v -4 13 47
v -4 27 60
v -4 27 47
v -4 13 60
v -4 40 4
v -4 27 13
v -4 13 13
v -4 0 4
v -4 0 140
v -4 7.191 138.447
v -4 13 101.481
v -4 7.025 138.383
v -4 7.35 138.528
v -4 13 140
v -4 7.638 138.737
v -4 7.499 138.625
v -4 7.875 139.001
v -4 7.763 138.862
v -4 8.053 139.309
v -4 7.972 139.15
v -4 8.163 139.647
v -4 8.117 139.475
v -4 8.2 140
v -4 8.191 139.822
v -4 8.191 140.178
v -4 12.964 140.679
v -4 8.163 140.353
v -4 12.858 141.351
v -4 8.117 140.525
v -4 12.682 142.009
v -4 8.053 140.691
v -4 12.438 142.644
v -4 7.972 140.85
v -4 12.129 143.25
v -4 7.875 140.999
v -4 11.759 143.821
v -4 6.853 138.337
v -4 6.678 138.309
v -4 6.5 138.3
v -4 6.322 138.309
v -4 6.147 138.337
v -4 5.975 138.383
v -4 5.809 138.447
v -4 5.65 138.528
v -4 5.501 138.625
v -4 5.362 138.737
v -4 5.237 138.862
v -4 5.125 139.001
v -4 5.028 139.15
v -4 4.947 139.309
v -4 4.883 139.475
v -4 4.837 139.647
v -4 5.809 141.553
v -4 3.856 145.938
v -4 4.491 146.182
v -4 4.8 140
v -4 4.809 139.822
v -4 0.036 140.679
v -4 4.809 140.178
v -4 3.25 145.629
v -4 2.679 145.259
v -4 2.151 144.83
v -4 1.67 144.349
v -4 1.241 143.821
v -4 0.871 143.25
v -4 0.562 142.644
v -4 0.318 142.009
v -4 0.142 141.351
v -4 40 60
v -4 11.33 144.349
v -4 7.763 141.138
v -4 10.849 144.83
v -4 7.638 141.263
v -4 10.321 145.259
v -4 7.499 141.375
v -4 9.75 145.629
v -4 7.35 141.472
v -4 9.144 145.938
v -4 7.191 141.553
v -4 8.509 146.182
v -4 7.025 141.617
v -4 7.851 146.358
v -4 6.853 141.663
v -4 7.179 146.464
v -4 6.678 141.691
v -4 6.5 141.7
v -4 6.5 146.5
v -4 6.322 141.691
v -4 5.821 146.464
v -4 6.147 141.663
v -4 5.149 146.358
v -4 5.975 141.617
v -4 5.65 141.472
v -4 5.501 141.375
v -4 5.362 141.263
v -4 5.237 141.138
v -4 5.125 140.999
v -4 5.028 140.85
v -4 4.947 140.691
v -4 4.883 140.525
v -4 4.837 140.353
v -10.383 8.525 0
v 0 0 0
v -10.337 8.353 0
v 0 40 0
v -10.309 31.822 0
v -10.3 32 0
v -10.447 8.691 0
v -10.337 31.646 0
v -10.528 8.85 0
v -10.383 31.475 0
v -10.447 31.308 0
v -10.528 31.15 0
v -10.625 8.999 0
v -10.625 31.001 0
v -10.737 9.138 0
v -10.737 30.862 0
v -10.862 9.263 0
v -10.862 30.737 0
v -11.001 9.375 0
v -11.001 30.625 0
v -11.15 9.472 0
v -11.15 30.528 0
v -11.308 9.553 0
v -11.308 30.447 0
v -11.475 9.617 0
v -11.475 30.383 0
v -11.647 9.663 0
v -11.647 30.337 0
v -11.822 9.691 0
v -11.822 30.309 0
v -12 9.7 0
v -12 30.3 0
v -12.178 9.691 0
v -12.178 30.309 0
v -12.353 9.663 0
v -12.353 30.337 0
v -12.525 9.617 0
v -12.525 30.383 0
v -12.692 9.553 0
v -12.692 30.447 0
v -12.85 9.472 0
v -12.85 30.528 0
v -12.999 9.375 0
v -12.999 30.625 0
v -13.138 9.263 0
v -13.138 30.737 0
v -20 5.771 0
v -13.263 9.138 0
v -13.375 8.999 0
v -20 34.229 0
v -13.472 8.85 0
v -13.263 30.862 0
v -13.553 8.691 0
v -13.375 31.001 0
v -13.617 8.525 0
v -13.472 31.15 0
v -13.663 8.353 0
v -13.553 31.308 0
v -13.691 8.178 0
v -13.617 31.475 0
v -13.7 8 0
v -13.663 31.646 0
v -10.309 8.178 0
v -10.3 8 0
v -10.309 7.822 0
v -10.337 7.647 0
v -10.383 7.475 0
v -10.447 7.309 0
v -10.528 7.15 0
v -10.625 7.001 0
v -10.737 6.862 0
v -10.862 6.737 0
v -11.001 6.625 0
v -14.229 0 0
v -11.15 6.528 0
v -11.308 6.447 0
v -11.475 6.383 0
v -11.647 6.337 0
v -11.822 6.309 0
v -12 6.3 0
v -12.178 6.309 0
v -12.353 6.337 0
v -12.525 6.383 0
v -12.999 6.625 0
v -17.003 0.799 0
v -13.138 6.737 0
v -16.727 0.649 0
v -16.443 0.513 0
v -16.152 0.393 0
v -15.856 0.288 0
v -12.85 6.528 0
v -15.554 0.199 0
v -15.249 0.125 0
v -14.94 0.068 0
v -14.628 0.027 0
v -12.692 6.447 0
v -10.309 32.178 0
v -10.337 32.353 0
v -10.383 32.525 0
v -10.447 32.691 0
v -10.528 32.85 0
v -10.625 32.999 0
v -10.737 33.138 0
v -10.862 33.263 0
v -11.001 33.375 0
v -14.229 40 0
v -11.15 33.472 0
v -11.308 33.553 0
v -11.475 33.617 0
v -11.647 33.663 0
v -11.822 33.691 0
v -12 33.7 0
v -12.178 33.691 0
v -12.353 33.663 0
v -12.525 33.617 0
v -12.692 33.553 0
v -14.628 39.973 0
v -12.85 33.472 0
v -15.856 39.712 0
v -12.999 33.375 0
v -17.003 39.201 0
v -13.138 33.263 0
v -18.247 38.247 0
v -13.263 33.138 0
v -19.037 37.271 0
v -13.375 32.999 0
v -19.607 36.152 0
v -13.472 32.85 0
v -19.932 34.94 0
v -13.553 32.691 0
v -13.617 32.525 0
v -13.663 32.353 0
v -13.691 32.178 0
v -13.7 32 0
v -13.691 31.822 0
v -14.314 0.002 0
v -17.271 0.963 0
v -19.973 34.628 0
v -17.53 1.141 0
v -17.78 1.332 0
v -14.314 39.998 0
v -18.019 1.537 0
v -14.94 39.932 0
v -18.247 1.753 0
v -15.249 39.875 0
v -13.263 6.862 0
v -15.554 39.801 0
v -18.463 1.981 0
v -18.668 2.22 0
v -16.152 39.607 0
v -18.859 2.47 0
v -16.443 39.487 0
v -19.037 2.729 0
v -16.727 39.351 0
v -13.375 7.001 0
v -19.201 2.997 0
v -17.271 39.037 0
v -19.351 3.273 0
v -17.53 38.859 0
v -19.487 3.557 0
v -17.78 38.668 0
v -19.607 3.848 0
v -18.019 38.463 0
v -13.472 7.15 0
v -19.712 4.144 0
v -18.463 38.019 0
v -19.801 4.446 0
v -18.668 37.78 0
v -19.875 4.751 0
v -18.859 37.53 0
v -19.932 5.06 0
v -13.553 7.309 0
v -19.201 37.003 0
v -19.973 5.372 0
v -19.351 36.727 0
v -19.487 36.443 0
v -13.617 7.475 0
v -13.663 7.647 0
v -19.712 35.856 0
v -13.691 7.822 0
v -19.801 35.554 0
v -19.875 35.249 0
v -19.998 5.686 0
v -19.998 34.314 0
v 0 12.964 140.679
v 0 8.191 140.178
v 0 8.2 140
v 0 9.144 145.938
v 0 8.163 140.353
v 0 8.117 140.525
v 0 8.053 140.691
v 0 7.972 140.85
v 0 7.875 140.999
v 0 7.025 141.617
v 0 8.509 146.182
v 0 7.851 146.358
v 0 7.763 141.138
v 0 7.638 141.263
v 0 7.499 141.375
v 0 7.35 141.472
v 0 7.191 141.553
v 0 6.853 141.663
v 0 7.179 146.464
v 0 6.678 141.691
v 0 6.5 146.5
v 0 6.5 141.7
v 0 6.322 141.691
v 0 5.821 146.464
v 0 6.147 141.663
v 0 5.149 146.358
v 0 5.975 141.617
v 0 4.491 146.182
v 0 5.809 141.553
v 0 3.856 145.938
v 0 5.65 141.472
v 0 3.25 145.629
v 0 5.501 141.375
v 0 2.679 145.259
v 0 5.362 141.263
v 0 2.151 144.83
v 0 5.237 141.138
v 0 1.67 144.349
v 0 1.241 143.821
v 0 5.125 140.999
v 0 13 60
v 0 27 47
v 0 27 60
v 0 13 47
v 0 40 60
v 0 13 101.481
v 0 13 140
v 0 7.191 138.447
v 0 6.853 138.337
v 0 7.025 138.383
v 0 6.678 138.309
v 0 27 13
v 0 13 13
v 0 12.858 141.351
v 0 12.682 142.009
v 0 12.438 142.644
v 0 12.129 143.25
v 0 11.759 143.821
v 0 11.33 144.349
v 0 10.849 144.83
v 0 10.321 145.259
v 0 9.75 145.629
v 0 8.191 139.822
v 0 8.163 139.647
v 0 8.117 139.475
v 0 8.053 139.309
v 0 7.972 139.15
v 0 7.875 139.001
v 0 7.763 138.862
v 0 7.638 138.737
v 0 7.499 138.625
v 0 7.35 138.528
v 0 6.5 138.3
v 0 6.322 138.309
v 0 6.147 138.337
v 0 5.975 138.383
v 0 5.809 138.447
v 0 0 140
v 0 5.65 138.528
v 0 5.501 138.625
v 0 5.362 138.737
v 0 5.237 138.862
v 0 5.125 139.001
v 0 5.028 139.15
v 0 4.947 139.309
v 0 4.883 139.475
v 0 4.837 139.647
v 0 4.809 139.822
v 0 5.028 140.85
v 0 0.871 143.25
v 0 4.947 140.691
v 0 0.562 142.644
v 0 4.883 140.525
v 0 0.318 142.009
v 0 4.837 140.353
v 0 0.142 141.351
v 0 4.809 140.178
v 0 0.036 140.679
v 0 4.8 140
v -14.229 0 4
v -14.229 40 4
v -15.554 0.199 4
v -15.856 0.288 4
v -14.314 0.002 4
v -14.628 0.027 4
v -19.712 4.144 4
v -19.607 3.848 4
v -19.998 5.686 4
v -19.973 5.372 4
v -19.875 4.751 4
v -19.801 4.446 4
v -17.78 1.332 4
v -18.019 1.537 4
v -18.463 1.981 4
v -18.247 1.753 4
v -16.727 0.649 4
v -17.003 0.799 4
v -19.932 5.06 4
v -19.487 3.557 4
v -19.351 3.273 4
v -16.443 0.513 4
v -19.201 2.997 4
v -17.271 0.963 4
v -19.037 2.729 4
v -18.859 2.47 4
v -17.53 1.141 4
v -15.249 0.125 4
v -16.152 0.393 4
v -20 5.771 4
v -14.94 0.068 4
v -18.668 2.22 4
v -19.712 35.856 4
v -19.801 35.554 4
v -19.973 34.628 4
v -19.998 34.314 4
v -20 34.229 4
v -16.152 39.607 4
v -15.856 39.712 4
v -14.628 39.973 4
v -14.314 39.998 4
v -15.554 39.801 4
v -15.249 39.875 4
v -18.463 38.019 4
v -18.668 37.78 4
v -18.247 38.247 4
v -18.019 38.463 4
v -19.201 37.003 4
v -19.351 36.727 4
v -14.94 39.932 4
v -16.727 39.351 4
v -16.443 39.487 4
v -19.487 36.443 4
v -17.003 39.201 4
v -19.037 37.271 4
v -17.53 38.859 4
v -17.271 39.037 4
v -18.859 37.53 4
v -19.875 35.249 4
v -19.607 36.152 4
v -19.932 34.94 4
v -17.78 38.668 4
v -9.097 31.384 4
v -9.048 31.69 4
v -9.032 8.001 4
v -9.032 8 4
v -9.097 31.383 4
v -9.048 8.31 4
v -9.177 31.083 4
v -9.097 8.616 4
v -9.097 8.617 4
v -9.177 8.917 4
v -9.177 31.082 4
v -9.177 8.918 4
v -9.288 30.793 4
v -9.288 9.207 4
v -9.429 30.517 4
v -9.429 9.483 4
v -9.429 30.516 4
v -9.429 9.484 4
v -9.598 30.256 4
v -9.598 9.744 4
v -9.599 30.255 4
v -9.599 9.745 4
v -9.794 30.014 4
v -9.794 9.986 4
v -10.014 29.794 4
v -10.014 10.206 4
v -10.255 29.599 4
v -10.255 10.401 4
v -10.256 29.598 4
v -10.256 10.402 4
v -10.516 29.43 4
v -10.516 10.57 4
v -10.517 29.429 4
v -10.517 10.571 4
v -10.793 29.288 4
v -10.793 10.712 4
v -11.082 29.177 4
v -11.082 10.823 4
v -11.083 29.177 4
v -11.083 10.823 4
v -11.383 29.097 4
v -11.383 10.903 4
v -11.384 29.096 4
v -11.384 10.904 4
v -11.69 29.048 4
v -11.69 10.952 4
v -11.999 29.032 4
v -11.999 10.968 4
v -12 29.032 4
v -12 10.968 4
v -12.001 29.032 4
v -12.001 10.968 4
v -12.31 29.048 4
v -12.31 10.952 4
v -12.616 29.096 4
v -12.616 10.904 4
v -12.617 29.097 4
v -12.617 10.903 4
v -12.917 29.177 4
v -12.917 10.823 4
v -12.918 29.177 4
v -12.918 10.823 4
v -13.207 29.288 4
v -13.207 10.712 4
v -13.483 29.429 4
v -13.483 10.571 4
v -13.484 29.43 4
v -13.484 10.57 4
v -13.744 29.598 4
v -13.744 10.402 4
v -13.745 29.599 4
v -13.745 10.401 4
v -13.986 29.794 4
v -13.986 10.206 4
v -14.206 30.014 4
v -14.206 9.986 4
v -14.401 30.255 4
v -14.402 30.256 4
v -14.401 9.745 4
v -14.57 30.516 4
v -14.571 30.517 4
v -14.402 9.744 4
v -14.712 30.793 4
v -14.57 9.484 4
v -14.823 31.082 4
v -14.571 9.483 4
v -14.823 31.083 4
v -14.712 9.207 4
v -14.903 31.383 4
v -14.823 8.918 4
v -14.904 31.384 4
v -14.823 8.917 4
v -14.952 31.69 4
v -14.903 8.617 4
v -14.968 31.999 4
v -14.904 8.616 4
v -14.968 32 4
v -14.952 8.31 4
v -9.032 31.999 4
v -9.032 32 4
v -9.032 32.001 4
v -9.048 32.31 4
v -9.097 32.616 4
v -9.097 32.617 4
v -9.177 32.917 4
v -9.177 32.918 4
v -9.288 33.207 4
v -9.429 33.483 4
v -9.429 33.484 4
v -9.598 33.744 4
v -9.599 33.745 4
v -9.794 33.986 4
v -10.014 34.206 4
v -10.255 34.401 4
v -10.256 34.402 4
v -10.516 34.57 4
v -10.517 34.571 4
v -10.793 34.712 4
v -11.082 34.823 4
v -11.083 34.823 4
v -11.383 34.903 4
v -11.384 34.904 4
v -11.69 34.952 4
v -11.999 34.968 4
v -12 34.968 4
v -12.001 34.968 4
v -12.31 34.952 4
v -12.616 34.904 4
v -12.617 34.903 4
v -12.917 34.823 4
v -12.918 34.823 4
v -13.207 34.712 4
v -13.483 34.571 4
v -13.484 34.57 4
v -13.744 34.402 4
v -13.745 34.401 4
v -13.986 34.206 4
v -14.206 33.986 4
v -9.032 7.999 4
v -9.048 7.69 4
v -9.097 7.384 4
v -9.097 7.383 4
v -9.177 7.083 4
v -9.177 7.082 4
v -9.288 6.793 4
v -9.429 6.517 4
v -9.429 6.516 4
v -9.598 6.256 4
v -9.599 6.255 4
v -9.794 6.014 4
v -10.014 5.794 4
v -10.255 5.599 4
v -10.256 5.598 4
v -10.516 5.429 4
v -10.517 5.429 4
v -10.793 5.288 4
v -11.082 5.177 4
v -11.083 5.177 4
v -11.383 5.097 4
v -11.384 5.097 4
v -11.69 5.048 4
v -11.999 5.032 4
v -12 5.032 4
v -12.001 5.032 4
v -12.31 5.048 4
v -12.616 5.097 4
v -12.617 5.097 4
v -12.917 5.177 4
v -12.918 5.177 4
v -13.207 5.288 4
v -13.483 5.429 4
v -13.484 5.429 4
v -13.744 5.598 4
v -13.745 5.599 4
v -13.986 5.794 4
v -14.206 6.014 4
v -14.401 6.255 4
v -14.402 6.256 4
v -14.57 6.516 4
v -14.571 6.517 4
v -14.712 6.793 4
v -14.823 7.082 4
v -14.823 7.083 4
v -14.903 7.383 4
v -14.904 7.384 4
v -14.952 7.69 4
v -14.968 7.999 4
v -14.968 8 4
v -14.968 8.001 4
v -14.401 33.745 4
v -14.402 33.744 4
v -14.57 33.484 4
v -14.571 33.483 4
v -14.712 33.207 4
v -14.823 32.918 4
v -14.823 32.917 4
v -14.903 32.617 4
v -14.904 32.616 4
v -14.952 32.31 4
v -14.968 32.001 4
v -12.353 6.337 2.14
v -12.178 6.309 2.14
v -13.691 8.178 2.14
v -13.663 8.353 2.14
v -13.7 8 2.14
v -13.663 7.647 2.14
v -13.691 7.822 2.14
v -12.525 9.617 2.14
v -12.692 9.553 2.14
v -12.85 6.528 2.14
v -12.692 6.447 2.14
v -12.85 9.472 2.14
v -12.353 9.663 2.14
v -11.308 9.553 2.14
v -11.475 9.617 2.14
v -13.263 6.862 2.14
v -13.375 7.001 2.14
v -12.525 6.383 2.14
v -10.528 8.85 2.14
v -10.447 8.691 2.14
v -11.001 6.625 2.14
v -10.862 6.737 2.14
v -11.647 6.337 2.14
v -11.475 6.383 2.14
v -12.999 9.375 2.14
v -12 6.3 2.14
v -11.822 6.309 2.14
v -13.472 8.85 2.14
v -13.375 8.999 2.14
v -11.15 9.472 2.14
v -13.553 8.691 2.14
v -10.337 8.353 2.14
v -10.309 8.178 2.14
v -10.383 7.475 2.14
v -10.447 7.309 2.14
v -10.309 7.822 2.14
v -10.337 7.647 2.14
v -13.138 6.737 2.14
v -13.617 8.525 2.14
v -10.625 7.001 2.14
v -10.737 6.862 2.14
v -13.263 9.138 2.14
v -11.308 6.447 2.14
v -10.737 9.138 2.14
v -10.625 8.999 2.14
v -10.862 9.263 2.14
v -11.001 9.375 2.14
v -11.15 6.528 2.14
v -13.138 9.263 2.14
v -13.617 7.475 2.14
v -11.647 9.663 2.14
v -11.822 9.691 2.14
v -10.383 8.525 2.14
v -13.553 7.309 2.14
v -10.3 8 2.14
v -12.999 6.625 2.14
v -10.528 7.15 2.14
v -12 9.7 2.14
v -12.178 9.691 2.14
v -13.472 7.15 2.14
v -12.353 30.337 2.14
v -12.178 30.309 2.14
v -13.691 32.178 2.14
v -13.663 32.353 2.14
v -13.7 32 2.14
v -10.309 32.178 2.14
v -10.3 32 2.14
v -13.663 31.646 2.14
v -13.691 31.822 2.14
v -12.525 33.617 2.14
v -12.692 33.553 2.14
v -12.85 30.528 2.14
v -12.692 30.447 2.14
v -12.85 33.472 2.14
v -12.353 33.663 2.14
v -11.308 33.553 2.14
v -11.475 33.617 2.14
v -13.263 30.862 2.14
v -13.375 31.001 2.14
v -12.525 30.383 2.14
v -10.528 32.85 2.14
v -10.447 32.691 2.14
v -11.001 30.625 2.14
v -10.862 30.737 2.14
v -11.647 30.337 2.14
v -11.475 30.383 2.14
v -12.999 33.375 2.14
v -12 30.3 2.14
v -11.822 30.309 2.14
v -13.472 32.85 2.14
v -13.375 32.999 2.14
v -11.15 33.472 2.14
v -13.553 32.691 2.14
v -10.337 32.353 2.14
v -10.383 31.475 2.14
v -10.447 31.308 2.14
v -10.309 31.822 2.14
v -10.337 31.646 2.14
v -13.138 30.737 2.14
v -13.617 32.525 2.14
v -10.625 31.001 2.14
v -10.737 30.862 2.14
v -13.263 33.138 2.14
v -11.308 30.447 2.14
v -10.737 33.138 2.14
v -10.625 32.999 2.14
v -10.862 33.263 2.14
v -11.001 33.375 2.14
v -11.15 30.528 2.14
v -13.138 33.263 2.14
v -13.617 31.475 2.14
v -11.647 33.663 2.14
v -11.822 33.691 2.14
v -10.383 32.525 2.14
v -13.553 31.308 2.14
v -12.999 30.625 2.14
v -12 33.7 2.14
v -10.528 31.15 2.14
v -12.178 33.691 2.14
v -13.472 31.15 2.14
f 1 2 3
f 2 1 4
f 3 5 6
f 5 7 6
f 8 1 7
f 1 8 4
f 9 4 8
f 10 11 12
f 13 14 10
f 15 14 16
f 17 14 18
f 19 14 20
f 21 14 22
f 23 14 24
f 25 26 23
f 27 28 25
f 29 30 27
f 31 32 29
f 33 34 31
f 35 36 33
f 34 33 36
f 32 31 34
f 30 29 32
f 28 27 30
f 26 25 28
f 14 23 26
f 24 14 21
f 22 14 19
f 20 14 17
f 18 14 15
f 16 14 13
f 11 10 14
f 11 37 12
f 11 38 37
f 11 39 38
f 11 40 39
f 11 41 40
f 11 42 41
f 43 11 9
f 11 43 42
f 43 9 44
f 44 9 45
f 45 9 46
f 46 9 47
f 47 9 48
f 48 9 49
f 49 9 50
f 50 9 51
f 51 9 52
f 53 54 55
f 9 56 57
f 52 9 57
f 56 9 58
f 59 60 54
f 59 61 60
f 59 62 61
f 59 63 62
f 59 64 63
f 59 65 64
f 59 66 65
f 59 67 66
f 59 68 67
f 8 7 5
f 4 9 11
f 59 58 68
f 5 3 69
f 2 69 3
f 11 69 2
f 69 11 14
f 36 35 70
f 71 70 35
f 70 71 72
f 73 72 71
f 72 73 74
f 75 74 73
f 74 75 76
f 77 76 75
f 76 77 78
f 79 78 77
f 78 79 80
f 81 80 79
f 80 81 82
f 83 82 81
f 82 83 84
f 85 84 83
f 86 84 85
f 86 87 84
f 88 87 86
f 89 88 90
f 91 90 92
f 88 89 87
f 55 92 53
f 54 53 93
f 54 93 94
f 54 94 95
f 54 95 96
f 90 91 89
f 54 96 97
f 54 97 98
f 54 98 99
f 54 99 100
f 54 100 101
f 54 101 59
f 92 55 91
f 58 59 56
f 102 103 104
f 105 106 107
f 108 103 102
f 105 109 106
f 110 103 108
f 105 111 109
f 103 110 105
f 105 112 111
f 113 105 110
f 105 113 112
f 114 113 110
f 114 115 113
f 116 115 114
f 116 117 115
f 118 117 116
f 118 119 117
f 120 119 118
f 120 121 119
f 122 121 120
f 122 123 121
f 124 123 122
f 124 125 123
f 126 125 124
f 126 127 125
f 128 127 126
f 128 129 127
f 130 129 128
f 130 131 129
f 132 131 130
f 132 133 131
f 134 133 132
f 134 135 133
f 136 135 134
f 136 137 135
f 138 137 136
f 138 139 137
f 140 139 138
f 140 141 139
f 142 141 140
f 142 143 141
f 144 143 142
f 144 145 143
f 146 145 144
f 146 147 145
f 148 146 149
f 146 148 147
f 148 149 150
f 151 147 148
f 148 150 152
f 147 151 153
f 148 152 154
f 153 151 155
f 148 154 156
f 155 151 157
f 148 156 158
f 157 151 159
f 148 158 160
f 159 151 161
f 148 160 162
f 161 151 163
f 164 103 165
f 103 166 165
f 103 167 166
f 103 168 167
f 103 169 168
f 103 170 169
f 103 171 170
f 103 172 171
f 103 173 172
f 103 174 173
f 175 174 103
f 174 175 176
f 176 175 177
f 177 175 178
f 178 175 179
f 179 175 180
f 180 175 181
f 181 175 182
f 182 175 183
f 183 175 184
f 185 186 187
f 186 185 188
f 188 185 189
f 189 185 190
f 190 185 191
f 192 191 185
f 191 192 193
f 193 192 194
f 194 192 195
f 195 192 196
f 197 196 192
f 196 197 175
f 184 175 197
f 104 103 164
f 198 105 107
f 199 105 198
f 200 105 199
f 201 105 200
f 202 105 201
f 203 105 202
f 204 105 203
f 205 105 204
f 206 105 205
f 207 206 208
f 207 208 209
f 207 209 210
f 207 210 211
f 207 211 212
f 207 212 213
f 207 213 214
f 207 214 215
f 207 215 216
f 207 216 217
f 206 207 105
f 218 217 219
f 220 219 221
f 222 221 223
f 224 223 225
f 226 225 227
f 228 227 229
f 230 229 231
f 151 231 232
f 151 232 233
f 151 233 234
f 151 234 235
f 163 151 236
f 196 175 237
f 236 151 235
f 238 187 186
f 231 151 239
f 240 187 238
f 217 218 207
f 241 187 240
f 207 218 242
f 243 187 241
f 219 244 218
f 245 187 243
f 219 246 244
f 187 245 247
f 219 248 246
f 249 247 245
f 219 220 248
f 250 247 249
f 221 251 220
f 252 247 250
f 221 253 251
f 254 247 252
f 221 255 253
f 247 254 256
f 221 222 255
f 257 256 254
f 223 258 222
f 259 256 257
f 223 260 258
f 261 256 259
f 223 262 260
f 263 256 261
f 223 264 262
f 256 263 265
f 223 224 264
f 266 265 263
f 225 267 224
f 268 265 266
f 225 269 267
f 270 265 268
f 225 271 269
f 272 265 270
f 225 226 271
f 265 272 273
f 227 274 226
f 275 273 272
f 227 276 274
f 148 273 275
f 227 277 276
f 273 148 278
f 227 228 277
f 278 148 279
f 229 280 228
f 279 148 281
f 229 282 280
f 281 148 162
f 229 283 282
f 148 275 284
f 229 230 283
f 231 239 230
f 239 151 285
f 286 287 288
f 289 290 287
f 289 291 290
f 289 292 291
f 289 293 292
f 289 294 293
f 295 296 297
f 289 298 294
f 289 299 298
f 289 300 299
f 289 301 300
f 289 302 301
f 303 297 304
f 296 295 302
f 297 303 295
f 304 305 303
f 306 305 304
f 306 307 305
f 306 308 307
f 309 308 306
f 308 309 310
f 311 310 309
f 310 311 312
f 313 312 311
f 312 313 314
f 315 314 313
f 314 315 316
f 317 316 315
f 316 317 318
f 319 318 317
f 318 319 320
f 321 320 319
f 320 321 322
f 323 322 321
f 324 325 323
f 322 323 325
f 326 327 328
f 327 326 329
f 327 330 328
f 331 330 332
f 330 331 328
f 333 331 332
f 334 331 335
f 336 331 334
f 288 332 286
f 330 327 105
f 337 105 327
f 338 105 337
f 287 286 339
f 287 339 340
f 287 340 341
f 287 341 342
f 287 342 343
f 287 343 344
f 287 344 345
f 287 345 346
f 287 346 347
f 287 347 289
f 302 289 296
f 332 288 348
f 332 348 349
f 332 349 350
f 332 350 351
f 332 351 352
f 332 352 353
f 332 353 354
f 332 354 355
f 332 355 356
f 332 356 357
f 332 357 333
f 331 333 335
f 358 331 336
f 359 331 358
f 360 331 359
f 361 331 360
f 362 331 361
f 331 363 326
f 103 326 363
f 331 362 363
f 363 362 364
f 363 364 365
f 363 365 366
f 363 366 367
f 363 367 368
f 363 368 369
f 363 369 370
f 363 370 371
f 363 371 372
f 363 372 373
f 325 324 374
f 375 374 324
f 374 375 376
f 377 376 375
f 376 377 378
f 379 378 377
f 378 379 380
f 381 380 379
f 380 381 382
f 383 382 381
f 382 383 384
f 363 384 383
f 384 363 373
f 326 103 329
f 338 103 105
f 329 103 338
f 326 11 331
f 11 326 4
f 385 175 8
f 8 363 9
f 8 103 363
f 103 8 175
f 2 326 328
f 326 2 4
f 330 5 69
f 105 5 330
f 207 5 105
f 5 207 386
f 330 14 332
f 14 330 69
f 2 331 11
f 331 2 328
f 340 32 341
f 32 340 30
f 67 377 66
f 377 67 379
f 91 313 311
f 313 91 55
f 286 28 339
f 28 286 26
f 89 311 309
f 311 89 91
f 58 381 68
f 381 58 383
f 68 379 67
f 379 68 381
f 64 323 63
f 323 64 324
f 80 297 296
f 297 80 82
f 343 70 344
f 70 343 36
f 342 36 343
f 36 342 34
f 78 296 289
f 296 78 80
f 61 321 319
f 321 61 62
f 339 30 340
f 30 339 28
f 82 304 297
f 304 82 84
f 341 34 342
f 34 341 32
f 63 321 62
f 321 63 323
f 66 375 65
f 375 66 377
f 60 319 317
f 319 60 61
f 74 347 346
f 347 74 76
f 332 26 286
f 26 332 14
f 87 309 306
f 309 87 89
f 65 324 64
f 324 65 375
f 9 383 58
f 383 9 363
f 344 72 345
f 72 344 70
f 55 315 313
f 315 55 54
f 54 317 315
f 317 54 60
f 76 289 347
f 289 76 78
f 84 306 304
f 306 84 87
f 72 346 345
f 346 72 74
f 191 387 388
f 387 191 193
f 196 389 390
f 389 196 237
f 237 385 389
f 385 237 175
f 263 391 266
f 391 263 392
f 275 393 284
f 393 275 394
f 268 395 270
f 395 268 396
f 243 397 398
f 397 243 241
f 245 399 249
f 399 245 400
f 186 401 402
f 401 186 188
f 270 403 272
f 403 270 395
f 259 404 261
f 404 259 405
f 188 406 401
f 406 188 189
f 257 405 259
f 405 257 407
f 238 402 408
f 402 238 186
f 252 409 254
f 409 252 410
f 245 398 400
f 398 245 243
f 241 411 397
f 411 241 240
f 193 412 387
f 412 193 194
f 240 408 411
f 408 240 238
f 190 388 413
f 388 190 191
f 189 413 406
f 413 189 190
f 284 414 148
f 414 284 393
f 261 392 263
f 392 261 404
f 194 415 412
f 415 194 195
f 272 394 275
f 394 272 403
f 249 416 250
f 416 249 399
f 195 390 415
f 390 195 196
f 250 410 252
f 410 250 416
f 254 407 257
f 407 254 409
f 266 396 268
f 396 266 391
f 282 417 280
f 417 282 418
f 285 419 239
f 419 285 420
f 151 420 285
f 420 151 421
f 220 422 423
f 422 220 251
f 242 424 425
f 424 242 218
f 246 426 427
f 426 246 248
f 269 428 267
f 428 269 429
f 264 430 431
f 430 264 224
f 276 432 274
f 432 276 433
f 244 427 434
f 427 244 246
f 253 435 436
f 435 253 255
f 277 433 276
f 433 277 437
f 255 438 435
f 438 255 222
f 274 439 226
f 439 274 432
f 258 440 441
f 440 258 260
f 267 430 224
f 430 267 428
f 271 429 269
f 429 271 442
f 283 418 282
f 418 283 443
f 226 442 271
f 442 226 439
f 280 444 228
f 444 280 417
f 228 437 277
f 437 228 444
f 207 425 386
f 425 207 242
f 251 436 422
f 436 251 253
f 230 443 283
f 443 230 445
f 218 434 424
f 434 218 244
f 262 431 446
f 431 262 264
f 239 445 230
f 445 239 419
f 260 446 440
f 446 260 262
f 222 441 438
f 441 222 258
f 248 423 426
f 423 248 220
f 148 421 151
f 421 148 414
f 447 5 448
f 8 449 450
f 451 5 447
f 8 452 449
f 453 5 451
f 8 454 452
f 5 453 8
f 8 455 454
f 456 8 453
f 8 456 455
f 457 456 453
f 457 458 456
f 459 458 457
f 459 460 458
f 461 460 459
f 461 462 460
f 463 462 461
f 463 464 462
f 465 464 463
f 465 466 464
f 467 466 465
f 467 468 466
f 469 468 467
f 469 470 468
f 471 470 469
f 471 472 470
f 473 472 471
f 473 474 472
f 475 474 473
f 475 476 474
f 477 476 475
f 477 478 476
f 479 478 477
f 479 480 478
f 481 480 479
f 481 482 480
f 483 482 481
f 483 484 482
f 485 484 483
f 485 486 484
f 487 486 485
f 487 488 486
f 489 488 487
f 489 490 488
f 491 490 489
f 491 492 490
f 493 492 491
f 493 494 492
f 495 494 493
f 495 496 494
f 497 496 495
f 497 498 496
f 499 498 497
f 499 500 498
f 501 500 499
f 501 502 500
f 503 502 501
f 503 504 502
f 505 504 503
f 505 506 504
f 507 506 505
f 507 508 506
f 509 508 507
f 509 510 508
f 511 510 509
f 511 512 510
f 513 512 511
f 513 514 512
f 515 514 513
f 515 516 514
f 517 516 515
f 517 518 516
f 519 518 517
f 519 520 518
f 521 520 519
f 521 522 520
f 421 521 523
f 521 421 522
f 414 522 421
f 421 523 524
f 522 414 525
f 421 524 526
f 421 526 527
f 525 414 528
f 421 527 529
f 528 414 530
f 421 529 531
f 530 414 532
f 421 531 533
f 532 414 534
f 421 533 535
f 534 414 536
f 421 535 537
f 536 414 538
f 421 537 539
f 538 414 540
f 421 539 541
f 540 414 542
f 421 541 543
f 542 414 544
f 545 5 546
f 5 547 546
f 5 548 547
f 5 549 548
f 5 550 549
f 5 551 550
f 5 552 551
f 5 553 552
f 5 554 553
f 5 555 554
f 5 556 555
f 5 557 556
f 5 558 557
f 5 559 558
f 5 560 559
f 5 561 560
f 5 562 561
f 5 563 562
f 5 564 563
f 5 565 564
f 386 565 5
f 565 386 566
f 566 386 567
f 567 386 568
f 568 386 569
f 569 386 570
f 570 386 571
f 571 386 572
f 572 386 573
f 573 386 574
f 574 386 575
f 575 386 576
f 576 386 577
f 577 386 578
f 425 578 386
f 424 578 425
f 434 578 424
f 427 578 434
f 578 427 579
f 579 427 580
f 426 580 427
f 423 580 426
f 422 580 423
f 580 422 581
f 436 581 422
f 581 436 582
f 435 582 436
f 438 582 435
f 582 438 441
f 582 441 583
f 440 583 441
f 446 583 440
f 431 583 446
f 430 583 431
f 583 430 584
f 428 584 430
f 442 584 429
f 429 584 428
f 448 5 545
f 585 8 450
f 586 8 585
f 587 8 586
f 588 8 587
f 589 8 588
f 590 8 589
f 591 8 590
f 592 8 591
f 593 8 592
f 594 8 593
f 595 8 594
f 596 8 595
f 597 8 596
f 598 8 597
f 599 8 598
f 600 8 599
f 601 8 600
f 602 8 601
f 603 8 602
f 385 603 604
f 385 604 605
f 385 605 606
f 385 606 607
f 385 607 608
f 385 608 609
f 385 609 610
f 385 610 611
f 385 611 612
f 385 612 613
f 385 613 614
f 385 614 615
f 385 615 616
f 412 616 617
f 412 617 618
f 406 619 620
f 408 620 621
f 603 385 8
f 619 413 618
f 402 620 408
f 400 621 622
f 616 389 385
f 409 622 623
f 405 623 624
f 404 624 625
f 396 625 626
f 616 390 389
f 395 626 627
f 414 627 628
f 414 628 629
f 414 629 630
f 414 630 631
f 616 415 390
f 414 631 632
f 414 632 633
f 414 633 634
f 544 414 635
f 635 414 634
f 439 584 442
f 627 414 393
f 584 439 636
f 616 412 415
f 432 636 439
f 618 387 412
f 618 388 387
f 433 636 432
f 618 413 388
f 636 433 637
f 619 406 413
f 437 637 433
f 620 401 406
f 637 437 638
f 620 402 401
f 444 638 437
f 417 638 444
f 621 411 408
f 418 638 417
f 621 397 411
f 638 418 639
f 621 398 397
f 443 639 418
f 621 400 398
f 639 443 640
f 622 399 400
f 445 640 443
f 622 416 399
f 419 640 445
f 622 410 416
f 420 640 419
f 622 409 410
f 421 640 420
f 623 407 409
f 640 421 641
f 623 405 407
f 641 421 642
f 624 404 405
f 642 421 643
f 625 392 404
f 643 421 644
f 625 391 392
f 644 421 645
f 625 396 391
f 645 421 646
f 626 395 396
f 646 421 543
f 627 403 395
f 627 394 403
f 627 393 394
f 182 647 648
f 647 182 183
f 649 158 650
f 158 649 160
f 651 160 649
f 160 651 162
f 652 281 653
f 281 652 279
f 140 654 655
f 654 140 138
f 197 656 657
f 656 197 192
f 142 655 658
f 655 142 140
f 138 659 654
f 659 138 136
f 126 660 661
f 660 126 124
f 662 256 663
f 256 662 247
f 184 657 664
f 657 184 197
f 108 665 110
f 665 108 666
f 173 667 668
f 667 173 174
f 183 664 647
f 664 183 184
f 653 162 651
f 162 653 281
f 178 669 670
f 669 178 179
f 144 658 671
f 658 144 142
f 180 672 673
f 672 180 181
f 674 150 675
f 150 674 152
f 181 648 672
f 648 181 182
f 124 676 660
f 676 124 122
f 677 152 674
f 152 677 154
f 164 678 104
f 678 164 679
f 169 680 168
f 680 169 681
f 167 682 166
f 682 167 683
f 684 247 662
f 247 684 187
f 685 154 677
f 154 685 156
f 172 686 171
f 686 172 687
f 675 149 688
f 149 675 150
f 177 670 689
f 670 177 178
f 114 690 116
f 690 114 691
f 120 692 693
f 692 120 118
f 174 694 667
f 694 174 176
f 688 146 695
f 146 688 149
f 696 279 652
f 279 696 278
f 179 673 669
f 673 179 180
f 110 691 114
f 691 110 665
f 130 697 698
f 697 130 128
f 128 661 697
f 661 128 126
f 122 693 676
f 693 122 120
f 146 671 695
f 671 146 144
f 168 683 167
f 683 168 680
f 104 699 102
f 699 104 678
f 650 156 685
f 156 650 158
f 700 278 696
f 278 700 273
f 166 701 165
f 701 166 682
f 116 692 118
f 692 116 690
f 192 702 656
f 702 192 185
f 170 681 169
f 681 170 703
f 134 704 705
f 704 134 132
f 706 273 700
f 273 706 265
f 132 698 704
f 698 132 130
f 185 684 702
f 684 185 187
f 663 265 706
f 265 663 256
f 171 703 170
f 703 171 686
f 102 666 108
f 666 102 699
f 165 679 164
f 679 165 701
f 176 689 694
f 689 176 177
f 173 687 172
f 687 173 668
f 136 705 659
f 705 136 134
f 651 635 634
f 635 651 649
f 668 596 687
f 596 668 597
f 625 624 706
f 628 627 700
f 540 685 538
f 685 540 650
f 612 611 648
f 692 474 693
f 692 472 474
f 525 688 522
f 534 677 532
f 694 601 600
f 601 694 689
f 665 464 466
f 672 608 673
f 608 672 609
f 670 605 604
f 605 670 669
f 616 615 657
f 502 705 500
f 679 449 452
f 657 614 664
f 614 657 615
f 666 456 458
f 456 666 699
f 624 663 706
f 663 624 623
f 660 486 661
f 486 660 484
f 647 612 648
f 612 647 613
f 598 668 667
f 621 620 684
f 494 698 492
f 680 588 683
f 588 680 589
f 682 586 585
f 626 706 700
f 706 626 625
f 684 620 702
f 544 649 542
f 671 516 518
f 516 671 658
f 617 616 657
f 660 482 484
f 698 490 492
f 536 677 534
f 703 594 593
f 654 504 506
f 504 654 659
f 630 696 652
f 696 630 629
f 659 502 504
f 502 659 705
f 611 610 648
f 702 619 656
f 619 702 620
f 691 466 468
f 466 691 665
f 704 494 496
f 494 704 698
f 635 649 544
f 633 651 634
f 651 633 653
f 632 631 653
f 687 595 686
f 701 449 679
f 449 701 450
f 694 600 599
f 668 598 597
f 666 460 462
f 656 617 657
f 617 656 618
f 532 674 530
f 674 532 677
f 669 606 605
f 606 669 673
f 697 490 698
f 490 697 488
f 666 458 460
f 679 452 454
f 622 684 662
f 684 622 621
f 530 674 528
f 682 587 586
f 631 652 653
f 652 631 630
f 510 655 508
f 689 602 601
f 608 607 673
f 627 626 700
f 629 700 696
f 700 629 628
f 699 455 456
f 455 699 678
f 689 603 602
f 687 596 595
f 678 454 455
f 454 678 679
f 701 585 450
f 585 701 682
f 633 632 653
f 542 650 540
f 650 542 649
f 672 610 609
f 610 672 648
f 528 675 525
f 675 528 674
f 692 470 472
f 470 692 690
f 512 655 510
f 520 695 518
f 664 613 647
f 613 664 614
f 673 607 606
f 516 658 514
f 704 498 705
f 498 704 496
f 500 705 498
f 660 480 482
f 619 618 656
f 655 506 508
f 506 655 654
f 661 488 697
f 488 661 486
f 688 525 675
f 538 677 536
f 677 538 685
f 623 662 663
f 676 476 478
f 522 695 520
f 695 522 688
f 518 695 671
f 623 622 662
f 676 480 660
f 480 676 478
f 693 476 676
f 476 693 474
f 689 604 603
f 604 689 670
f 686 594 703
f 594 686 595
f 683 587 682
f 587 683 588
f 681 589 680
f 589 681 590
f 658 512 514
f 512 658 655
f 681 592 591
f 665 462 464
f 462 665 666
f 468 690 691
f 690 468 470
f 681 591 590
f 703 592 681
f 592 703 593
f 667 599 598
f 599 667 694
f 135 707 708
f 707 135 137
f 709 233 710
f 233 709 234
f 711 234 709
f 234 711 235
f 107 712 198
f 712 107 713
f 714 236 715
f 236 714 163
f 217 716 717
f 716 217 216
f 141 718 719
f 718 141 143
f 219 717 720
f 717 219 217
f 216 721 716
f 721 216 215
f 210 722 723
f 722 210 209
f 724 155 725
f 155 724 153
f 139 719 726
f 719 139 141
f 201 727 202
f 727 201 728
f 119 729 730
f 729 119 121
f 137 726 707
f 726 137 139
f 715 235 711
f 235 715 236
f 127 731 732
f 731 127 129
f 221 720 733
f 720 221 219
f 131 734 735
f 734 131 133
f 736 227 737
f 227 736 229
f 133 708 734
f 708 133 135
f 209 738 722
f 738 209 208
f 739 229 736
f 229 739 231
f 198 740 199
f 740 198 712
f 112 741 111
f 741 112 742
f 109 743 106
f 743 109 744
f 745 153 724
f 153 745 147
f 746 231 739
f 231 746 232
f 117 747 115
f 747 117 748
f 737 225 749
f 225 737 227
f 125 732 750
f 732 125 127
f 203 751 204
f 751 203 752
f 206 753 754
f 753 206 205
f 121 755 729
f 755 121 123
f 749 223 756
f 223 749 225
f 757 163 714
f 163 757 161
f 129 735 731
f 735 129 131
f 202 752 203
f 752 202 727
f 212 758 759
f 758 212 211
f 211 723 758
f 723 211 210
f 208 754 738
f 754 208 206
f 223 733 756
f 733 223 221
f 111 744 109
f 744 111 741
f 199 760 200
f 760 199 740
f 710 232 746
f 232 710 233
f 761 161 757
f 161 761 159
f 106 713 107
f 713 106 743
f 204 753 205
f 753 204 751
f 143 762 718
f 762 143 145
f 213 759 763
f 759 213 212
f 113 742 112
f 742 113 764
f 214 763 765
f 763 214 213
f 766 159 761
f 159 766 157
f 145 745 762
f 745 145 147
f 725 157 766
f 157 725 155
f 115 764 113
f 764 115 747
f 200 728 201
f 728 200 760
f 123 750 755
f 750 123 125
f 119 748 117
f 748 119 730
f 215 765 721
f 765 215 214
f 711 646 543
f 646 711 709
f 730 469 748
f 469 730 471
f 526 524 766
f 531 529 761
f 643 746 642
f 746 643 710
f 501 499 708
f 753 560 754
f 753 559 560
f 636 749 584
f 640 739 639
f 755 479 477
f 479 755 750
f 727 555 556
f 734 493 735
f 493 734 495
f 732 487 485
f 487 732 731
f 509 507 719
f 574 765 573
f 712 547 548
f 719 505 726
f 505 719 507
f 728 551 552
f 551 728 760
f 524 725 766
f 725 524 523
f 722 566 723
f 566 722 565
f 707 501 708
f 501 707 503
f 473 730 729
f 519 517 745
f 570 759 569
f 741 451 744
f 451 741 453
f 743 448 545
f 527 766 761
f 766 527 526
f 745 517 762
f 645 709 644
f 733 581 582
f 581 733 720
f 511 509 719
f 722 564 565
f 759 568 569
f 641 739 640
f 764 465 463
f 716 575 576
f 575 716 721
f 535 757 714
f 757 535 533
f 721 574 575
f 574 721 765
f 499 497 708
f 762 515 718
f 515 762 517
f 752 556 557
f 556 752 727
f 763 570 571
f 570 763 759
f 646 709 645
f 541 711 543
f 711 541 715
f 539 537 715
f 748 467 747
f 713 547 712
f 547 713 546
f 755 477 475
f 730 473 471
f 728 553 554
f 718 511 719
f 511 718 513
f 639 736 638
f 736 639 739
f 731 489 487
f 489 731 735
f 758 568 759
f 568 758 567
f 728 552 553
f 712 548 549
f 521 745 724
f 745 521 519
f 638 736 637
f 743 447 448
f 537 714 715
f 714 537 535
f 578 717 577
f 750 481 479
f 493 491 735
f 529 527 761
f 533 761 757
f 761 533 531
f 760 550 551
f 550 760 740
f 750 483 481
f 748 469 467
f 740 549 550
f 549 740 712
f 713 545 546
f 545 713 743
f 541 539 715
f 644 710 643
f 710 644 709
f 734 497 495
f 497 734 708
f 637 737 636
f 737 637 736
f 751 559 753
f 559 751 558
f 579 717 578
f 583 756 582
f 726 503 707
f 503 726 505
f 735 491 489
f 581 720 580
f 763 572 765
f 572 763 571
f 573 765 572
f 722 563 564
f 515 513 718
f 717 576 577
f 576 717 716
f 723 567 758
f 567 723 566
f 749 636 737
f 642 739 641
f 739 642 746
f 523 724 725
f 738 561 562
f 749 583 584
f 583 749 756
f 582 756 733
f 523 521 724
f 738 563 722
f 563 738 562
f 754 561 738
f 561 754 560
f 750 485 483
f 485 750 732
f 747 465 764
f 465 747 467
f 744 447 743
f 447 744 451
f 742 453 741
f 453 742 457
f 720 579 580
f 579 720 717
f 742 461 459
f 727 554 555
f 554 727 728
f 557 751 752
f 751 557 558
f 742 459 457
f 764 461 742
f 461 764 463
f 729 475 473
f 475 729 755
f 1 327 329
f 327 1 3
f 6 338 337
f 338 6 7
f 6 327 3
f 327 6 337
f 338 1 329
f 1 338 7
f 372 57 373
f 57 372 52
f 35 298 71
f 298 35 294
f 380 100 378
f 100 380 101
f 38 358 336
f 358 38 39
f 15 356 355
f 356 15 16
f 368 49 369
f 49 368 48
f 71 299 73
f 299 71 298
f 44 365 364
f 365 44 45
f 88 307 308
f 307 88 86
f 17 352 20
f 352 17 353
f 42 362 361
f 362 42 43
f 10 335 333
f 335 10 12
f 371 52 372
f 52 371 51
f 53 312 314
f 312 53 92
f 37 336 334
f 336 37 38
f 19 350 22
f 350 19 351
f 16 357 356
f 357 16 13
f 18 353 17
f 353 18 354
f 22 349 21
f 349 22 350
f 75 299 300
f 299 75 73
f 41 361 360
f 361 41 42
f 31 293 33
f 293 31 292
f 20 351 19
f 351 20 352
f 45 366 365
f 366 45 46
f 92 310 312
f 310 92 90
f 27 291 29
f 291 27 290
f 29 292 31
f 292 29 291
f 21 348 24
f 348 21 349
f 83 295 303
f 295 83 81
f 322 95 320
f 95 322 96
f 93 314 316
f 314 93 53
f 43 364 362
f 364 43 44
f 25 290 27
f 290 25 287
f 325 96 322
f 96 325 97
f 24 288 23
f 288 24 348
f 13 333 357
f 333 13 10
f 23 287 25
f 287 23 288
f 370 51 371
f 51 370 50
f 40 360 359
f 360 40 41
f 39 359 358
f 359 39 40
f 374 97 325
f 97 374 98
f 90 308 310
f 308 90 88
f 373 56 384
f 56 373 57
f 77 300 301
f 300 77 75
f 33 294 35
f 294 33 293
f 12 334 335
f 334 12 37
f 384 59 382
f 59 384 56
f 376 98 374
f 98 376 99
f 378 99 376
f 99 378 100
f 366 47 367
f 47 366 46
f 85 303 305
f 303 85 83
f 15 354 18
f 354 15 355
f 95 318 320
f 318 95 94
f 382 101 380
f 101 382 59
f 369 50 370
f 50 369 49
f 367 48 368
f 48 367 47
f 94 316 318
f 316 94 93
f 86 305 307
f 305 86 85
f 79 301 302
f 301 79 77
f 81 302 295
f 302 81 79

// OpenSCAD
// file: ../configurations/support-simple.scad
support_height = 140;
support_width = 40;
support_motor_support_height = 60;
support_thickness = 4;
bars_width = 13;
horizontal_support_width = 20;
support_throw_diameter = 3.4;
horizontal_support_throw_diameter = 3.4;
horizontal_support_thickness = 5;
// file: subpieces/supportSubpiece.scad
module components_support_VerticalHorizontalSupport(support_height = 140, support_width = 54, support_motor_support_height = 60, support_thickness = 3, bars_width = 13, horizontal_support_width = 30, fn = 20) {
    union() {
        components_support_VerticalSupport(support_height, support_width, support_motor_support_height, support_thickness, bars_width, horizontal_support_width, fn);
        components_support_HorizontalSupportRounded(support_width, support_thickness, horizontal_support_width);
    }
}


module components_support_VerticalSupport(support_height = 140, support_width = 54, support_motor_support_height = 60, support_thickness = 3, bars_width = 13, horizontal_support_width = 30, fn = 20) {
    union() {
        cube([support_thickness, bars_width, support_height]);

        cube([support_thickness, support_width, support_motor_support_height]);

        translate([0, 0, support_height])
            rotate([0,90,0])
                linear_extrude(height = support_thickness, center = false, convexity = 10, twist = 0)
                    polygon([
                        [0, 0],
                        [0, bars_width],
                        [support_height - support_motor_support_height, support_width],
                        [support_height - support_motor_support_height, support_width - bars_width]
                    ]);

        translate([0, bars_width / 2, support_height])
            rotate([0,90,0])
                cylinder(h=support_thickness, d=bars_width, center=false, $fn=fn);
    }
}


module components_support_VerticalSupportEconomicPlastic(support_height, support_width, support_motor_support_height, support_thickness, bars_width, horizontal_support_width, fn=60) {
    epsilon = 0.1;
    pos_x = support_width / 2;
    pos_y = support_motor_support_height / 2;

    translate([0, pos_x, pos_y])
        cube([support_thickness * 2 + epsilon, support_width  - (bars_width * 2), support_motor_support_height  - (bars_width * 2)], center = true);
}


module components_support_VerticalSupportThrows(support_height = 140, support_throw_diameter = 3, bars_width = 13, fn = 60) {
    translate([0, bars_width / 2, support_height])
        rotate([0,90,0])
            cylinder(h=10, d=support_throw_diameter, center=true, $fn=fn);
}


module components_support_HorizontalSupport(support_width = 54, support_thickness = 3, horizontal_support_width = 30) {
    translate([0,0,0])
        cube([horizontal_support_width, support_width, support_thickness]);
}


module components_support_RoundedDifference(diameter_rounded = 20, thickness = 3, fn = 60) {
    epsilon = 0.1;
    difference(){
        cube([diameter_rounded, diameter_rounded, thickness], center=true);
        cylinder(h = thickness + epsilon, d = diameter_rounded, $fn = fn, center=true);
        translate([-diameter_rounded / 2, 0, 0])
            cube([diameter_rounded + epsilon, diameter_rounded + epsilon, thickness + epsilon], center=true);
        translate([0,-diameter_rounded / 2, 0])
            cube([diameter_rounded + epsilon, diameter_rounded + epsilon, thickness + epsilon], center=true);
    }
}


module components_support_HorizontalSupportRounded(support_width = 54, support_thickness = 3, horizontal_support_width = 30) {

    epsilon = 0.001;

    difference() {
        components_support_HorizontalSupport(support_width, support_thickness, horizontal_support_width);

        diameter_rounded = (support_width - support_thickness) / 3;

        translate([horizontal_support_width - (diameter_rounded / 2), diameter_rounded / 2, support_thickness / 2])
            rotate([0,0, -90])
                scale([1 * (1 + epsilon), 1 * (1 + epsilon),1.5])
                    components_support_RoundedDifference(diameter_rounded, thickness = 3, fn = 120);

        translate([horizontal_support_width - (diameter_rounded / 2), support_width - diameter_rounded / 2, support_thickness / 2])
            scale([1 * (1 + epsilon), 1 * (1 + epsilon),1.5])
                components_support_RoundedDifference(diameter_rounded, thickness = 3, fn = 120);
    }
}



module components_support_HorizontalSupportThrows(
    horizontal_support_width = 20,
    support_width = 54,
    horizontal_support_throw_diameter = 4,
    support_thickness = 3,
    horizontal_support_thickness = 3,
    fn = 60
) {

    epsilon = 0.01;
    horizontal_support_throw_radius = horizontal_support_throw_diameter / 2;

    cone_throw_heigh = horizontal_support_throw_radius * 1.1;
    cone_throw_r2 = horizontal_support_throw_radius * 1.75;

    union(){
        translate([support_thickness + (horizontal_support_width - support_thickness) / 2,  (horizontal_support_width - support_thickness) / 2, 0]) {
            cylinder(h = horizontal_support_thickness * 2, d=horizontal_support_throw_diameter, center=true, $fn=fn);
            translate([0,0, horizontal_support_thickness - cone_throw_heigh + epsilon])
                cylinder(h = cone_throw_heigh, r1 = horizontal_support_throw_radius, r2 = cone_throw_r2, center = false, $fn=fn);
        }

        translate([support_thickness + (horizontal_support_width - support_thickness) / 2, support_width - ((horizontal_support_width - support_thickness) / 2), 0]){
            cylinder(h=horizontal_support_thickness * 2, d=horizontal_support_throw_diameter, center=true, $fn=fn);

            translate([0,0, horizontal_support_thickness - cone_throw_heigh + epsilon])
                cylinder(h = cone_throw_heigh, r1 = horizontal_support_throw_radius, r2 = cone_throw_r2, center = false, $fn=fn);
        }
    }
}
// main file
include <subpieces/supportSubpiece.scad>
include <../configurations/support-simple.scad>

module simpleSupport1Piece(
    fn = 120
) {
    mirror([1,0,0])
        difference() {
            components_support_VerticalHorizontalSupport(support_height, support_width, support_motor_support_height, support_thickness, bars_width, horizontal_support_width, fn = fn);
            components_support_VerticalSupportEconomicPlastic(support_height, support_width, support_motor_support_height, support_thickness, bars_width, horizontal_support_width, fn = fn);
            components_support_VerticalSupportThrows(support_height, support_throw_diameter, bars_width);
            components_support_HorizontalSupportThrows(
                horizontal_support_width,
                support_width,
                horizontal_support_throw_diameter,
                support_thickness,
                support_thickness
            );
        }
}


simpleSupport1Piece(
    fn = 120
);
